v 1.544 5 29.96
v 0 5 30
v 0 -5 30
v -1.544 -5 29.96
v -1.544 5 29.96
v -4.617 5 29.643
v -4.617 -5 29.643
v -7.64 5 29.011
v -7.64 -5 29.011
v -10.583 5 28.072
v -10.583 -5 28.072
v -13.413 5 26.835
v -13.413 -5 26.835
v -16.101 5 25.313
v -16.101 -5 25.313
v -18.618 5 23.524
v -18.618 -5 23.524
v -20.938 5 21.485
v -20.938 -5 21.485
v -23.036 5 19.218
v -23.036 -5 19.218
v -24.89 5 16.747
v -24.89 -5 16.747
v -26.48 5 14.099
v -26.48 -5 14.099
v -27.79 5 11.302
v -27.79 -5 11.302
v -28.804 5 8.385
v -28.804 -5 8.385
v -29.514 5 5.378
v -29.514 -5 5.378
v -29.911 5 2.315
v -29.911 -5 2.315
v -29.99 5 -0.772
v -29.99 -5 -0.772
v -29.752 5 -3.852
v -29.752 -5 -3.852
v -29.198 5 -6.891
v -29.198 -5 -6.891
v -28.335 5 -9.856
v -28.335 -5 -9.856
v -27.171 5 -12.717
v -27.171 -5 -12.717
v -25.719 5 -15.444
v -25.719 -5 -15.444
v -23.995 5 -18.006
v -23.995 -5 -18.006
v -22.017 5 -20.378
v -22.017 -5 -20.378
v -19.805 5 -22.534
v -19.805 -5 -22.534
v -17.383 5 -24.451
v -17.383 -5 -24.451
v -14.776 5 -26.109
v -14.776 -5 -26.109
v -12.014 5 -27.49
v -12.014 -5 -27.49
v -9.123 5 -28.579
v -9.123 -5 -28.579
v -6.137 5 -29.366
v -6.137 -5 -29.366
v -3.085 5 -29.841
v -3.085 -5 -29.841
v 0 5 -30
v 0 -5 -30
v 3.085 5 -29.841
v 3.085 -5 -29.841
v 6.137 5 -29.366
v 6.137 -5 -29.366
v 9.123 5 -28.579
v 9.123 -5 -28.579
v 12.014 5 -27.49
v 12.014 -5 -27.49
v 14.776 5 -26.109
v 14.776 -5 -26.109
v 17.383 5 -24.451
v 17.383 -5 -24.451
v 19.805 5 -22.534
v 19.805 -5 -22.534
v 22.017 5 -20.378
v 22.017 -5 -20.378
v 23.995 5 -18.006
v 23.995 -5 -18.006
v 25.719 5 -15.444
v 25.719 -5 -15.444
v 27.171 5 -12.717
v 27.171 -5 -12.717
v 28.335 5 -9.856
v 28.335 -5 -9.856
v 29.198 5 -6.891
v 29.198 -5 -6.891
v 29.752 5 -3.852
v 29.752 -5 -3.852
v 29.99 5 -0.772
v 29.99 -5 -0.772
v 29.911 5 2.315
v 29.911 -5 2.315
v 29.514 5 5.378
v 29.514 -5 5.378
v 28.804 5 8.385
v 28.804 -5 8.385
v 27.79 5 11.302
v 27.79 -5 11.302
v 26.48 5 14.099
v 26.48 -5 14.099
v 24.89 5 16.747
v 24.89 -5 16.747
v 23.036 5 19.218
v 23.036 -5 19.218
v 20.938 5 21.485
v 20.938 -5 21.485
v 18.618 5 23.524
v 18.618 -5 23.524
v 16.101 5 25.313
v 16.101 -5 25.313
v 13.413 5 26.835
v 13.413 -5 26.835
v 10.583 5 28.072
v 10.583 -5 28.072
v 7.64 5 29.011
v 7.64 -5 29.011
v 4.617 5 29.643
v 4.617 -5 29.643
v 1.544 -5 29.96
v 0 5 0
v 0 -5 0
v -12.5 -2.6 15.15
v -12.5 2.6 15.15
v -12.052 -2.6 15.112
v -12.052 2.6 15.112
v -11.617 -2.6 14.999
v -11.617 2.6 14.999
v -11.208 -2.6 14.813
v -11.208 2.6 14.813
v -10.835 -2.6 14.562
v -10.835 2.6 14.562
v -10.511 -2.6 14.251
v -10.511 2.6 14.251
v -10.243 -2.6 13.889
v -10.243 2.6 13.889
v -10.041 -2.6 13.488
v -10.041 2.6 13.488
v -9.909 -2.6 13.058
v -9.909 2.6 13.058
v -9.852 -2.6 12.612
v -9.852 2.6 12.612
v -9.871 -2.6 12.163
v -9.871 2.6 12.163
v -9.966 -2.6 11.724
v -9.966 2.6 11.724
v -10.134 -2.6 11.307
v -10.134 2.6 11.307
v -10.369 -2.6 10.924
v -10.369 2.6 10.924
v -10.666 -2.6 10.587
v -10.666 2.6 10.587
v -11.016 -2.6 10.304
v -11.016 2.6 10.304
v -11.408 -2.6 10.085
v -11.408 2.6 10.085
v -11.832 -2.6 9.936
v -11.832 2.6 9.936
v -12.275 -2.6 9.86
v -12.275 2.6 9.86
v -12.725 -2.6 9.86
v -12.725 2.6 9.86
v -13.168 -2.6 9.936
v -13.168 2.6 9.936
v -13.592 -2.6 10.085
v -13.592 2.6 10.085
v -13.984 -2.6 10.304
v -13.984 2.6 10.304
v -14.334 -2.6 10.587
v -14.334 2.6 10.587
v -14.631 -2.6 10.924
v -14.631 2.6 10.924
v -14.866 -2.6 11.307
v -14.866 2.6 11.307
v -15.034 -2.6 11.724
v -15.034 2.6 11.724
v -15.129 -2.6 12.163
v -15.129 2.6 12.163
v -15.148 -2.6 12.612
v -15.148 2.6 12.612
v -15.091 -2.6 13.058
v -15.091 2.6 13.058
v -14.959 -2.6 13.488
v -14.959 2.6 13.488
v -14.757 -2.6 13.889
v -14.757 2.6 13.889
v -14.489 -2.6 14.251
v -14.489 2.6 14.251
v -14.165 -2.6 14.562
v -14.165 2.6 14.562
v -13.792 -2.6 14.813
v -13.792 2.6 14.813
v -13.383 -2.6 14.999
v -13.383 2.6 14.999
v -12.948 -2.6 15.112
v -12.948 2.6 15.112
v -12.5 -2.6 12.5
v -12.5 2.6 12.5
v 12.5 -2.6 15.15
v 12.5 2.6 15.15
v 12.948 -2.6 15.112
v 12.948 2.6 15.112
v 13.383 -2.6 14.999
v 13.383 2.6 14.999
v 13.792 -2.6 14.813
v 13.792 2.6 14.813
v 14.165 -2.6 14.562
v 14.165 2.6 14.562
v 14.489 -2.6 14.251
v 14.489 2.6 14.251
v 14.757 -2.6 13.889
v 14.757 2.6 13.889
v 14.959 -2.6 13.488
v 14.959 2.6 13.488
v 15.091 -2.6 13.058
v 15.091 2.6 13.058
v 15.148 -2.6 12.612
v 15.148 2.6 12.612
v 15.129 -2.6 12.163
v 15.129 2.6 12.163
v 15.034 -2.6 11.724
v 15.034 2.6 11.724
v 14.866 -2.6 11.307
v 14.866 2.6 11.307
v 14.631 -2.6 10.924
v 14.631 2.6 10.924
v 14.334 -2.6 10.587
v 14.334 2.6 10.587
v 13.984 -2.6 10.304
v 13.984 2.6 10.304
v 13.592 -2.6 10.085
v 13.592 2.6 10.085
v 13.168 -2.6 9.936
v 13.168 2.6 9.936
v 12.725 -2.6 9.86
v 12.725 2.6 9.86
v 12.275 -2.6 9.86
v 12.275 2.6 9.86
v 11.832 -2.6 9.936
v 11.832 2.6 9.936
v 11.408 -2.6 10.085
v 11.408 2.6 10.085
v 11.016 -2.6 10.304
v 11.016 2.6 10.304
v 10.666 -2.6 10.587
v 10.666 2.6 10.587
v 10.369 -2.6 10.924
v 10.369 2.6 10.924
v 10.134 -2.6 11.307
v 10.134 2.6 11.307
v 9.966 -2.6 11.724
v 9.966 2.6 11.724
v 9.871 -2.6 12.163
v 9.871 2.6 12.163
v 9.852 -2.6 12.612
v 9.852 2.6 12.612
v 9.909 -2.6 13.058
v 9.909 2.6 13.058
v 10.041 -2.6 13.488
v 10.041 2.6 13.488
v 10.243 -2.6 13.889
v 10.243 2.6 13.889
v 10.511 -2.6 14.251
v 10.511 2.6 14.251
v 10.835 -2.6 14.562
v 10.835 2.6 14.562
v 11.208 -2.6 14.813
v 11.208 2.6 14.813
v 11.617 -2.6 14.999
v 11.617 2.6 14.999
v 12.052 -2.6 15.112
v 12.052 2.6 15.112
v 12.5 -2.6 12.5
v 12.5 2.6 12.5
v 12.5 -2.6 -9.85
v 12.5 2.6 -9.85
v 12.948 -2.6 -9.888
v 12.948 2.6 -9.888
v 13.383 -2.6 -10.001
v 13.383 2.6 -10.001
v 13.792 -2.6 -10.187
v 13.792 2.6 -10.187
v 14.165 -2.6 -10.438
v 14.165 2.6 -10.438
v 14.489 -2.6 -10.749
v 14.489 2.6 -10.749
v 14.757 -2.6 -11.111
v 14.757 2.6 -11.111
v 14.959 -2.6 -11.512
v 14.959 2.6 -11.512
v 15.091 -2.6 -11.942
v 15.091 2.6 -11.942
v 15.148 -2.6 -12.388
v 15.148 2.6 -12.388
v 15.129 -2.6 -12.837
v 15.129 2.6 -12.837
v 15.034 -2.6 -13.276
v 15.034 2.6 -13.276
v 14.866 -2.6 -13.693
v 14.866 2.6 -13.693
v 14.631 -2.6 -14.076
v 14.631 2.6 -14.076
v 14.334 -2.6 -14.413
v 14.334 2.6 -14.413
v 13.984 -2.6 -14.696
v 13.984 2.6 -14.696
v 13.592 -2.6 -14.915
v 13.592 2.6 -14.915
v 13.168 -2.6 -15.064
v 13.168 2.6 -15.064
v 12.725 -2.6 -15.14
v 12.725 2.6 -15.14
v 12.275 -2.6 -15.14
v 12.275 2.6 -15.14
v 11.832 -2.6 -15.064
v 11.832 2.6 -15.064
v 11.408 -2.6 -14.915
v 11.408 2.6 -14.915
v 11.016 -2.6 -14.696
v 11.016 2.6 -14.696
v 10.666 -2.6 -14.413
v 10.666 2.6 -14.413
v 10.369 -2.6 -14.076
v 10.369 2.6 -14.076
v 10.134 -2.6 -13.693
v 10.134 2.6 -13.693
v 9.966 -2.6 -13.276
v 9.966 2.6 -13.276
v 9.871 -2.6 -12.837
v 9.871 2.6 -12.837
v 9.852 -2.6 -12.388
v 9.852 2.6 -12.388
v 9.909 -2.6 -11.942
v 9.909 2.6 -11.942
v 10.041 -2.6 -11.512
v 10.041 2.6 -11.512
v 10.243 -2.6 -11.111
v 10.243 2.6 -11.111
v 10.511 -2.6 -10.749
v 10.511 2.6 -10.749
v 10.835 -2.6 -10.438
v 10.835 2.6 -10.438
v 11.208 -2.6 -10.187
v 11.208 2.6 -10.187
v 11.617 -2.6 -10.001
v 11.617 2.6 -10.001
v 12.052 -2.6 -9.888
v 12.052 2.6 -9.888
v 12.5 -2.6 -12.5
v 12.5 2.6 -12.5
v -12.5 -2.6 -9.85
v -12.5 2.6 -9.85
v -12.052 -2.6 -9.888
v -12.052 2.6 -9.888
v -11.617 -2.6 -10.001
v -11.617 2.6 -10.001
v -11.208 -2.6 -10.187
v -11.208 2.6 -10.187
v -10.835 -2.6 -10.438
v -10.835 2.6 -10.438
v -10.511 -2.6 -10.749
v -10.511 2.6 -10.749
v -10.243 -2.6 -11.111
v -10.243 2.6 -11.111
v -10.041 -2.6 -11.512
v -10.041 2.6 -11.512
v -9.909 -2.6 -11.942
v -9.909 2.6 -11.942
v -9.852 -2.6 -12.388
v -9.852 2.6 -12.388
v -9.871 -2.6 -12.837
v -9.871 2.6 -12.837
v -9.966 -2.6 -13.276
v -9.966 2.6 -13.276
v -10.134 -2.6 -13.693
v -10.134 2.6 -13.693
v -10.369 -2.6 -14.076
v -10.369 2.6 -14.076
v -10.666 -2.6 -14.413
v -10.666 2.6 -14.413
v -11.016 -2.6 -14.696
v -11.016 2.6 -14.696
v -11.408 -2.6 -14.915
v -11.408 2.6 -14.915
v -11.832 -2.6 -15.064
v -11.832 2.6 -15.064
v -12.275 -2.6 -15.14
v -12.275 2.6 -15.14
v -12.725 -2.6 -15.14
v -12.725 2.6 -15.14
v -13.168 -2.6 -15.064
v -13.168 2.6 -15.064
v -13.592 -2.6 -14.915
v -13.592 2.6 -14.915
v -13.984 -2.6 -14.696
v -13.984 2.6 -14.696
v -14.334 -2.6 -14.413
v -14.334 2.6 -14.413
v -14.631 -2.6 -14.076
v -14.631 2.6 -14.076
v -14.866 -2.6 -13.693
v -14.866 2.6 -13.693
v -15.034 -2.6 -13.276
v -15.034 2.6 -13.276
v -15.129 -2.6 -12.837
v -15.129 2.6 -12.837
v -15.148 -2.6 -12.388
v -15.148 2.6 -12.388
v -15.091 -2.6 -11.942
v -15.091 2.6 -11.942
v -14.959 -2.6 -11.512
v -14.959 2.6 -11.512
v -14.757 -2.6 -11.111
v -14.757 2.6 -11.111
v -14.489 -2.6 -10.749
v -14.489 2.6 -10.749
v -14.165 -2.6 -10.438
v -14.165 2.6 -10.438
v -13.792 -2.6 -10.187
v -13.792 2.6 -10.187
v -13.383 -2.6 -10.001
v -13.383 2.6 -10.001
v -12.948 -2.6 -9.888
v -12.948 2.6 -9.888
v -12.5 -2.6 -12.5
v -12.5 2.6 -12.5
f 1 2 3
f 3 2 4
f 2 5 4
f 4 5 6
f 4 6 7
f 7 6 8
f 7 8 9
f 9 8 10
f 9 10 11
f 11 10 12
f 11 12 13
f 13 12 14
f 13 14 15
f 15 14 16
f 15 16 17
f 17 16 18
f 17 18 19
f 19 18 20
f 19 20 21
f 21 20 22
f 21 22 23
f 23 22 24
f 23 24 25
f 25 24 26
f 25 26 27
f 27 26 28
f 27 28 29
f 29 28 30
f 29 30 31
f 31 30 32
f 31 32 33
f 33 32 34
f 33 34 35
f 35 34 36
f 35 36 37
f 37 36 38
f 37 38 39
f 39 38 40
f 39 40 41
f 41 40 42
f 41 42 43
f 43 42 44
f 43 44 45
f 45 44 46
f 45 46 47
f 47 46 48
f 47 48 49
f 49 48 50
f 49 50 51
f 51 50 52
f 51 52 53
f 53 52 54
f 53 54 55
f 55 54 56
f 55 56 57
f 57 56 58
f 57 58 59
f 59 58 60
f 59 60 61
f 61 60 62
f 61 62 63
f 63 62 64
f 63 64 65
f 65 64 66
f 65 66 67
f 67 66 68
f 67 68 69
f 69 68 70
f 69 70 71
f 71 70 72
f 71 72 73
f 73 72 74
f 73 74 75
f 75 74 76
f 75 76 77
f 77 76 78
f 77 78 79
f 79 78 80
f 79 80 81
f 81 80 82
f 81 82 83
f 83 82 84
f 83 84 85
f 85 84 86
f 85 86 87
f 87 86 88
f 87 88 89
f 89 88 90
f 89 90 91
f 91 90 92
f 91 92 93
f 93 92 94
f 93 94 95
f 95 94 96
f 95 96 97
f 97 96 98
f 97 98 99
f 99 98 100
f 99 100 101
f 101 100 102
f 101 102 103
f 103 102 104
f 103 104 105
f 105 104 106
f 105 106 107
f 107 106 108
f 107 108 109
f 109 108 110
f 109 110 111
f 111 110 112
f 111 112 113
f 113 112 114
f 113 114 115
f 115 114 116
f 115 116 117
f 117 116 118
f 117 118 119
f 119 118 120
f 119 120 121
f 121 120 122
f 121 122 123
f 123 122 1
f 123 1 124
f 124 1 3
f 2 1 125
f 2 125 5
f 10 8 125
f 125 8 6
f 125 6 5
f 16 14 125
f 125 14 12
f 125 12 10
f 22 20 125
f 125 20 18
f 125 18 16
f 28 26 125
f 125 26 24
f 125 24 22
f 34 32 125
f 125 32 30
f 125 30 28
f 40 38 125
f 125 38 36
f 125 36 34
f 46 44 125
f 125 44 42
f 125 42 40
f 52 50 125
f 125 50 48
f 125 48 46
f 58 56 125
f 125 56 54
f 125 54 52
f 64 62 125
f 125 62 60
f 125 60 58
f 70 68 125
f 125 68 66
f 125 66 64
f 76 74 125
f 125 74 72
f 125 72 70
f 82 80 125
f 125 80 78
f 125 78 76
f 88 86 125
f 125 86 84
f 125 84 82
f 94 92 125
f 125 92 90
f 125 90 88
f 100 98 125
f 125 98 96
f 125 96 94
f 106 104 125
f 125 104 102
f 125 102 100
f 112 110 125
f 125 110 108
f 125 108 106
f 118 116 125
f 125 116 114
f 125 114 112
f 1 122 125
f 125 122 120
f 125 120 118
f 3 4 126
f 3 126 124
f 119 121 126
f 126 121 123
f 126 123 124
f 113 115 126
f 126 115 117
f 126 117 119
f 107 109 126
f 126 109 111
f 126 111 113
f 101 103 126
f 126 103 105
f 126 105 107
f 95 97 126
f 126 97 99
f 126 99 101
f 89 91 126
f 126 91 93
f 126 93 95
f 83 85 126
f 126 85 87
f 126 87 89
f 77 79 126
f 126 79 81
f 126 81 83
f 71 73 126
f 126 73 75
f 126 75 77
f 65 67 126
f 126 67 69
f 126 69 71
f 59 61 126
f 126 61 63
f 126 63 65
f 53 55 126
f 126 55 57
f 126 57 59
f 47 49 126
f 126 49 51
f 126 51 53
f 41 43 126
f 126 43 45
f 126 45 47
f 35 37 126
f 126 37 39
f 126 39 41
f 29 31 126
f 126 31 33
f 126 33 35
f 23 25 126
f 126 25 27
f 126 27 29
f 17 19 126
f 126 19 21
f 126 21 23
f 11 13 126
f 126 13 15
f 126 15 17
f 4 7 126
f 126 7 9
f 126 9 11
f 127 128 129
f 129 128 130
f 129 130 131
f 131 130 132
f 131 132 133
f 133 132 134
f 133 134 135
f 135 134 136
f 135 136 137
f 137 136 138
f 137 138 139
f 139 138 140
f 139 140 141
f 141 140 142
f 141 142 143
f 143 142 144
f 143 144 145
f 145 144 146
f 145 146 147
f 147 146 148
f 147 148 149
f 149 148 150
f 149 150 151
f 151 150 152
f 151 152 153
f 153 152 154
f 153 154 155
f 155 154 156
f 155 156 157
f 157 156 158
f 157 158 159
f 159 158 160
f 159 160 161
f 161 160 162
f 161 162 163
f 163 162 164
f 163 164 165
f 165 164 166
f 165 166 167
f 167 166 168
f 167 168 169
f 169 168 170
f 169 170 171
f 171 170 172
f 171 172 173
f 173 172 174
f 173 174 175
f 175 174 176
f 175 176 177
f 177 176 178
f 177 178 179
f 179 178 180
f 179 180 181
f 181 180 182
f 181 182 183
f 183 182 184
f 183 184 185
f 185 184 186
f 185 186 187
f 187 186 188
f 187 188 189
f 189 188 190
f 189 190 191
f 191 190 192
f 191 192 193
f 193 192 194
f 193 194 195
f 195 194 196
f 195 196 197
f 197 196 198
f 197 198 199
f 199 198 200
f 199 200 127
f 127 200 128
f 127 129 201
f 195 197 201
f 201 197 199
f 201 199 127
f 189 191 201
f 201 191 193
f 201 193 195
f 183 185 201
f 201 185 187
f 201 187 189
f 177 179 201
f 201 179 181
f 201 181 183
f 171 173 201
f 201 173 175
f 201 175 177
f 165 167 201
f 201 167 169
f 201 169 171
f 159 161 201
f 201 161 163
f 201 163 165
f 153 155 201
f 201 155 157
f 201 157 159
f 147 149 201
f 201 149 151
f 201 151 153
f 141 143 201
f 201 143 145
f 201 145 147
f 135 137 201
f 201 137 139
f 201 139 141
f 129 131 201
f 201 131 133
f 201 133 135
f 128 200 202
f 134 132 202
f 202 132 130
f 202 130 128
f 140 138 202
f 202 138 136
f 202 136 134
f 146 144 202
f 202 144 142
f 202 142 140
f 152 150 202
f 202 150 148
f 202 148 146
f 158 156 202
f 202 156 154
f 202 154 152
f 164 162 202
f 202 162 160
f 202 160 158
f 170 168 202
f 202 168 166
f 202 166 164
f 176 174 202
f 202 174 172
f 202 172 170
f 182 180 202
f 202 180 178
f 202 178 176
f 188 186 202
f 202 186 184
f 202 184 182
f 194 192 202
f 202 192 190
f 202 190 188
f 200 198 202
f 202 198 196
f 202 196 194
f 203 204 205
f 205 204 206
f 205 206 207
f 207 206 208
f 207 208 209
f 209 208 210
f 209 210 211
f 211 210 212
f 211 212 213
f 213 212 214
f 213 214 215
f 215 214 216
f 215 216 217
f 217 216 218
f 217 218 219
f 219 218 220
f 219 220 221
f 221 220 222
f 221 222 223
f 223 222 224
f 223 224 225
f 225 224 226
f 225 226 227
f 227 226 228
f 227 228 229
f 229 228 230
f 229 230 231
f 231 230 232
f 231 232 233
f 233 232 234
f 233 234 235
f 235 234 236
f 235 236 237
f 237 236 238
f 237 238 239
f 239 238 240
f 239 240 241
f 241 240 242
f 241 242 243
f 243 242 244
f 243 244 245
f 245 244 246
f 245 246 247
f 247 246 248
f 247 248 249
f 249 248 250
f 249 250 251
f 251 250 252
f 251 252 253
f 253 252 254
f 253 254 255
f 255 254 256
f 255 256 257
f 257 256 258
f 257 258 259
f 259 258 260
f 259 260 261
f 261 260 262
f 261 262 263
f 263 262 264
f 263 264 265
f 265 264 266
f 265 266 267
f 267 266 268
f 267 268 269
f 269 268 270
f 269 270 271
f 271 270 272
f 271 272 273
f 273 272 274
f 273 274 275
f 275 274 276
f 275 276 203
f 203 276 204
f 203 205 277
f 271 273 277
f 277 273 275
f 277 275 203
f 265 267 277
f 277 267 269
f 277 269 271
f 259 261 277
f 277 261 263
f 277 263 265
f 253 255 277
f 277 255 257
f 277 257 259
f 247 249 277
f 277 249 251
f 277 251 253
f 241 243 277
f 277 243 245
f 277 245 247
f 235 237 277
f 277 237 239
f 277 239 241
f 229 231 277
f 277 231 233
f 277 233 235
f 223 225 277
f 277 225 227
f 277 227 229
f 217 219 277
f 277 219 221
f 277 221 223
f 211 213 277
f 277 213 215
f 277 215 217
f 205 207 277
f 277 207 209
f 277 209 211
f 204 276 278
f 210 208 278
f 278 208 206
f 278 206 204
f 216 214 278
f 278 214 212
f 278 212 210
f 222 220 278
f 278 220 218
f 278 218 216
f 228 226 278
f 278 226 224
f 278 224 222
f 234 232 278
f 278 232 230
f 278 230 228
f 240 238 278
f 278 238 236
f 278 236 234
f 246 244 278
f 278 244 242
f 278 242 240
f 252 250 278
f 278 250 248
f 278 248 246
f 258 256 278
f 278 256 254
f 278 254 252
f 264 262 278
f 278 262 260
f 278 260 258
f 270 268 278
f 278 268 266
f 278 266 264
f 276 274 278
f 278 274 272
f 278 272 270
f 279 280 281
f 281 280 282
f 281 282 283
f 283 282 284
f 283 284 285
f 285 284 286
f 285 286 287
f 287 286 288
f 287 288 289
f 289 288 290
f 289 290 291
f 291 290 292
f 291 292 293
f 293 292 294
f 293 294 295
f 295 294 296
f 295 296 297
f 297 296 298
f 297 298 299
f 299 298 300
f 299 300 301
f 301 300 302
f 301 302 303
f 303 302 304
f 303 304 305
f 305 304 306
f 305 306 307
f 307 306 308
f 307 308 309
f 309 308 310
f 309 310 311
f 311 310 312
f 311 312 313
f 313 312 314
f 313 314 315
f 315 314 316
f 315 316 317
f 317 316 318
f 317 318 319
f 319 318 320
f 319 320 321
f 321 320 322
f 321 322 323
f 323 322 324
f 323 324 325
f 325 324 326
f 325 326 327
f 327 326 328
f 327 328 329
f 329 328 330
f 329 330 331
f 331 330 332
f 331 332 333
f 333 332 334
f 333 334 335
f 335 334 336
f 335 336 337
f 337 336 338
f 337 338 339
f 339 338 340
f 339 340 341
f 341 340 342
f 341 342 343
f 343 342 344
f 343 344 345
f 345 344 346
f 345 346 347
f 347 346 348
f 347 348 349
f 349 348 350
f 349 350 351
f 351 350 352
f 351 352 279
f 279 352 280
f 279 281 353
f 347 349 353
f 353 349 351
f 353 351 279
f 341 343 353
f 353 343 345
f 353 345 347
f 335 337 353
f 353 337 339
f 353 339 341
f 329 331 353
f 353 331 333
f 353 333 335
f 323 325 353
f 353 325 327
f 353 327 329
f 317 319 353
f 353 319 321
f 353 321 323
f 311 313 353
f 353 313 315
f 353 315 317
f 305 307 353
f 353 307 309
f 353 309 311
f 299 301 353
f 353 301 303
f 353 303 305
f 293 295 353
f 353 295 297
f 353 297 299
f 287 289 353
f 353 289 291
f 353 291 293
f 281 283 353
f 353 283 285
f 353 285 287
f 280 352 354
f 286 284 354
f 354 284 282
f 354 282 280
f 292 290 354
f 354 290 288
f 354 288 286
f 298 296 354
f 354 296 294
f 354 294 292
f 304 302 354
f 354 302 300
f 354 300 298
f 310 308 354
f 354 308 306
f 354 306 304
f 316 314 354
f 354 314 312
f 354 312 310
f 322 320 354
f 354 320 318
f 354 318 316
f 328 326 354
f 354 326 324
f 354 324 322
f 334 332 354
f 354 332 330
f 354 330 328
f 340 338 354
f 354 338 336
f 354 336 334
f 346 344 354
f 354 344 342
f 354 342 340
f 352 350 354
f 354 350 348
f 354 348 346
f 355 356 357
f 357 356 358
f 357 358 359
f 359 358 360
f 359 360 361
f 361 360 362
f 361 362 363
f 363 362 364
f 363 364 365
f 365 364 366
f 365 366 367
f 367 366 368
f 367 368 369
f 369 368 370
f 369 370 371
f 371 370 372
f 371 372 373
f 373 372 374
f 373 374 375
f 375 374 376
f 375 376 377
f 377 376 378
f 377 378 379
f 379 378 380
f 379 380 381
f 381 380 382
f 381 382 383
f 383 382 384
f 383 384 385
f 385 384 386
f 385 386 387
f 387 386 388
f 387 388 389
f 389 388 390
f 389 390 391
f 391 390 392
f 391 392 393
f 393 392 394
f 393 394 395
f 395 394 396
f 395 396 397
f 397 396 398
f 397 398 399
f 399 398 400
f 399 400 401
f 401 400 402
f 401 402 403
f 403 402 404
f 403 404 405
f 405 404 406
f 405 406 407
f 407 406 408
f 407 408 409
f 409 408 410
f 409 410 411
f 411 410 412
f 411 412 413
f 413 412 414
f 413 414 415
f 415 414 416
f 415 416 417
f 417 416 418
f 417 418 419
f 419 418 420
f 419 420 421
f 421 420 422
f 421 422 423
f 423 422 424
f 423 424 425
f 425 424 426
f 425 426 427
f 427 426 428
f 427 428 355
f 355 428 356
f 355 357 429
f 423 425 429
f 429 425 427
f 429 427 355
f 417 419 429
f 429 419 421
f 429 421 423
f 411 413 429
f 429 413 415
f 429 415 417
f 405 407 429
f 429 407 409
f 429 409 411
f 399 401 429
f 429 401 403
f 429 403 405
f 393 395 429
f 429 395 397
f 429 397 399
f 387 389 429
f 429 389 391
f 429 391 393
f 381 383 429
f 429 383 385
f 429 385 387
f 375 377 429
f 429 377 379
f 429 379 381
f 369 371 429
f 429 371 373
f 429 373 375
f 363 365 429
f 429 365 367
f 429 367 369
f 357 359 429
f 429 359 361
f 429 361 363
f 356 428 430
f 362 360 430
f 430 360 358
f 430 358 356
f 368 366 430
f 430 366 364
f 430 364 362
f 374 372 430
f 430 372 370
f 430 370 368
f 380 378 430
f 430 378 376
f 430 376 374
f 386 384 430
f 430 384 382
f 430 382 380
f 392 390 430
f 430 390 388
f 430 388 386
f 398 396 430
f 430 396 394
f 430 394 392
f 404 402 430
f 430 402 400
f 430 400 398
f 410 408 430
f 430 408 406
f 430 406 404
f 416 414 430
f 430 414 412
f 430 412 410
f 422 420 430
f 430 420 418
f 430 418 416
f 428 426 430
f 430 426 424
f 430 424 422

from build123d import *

# Parameters (mm, degrees)
SKETCH1_R           = 30
BOSS_EXTRUDE1_DEPTH = 5
SKETCH2_R           = 2.65
CUT_EXTRUDE1_DEPTH  = 2.6


with BuildPart() as part:
    # Sketch1 → Boss-Extrude1 (new body, symmetric)
    with BuildSketch(Plane(origin=(0, 0, 0), x_dir=(1, 0, 0), z_dir=(0, 1, 0))):
        Circle(SKETCH1_R)
    extrude(amount=BOSS_EXTRUDE1_DEPTH, both=True)

    # Sketch2 → Cut-Extrude1 (cut, symmetric)
    with BuildSketch(Plane(origin=(0, 0, 0), x_dir=(1, 0, 0), z_dir=(0, 1, 0))):
        with Locations((-12.5, 12.5)):
            Circle(SKETCH2_R)
        with Locations((12.5, 12.5)):
            Circle(SKETCH2_R)
        with Locations((12.5, -12.5)):
            Circle(SKETCH2_R)
        with Locations((-12.5, -12.5)):
            Circle(SKETCH2_R)
    extrude(amount=CUT_EXTRUDE1_DEPTH, both=True, mode=Mode.SUBTRACT)


solid = part.part
